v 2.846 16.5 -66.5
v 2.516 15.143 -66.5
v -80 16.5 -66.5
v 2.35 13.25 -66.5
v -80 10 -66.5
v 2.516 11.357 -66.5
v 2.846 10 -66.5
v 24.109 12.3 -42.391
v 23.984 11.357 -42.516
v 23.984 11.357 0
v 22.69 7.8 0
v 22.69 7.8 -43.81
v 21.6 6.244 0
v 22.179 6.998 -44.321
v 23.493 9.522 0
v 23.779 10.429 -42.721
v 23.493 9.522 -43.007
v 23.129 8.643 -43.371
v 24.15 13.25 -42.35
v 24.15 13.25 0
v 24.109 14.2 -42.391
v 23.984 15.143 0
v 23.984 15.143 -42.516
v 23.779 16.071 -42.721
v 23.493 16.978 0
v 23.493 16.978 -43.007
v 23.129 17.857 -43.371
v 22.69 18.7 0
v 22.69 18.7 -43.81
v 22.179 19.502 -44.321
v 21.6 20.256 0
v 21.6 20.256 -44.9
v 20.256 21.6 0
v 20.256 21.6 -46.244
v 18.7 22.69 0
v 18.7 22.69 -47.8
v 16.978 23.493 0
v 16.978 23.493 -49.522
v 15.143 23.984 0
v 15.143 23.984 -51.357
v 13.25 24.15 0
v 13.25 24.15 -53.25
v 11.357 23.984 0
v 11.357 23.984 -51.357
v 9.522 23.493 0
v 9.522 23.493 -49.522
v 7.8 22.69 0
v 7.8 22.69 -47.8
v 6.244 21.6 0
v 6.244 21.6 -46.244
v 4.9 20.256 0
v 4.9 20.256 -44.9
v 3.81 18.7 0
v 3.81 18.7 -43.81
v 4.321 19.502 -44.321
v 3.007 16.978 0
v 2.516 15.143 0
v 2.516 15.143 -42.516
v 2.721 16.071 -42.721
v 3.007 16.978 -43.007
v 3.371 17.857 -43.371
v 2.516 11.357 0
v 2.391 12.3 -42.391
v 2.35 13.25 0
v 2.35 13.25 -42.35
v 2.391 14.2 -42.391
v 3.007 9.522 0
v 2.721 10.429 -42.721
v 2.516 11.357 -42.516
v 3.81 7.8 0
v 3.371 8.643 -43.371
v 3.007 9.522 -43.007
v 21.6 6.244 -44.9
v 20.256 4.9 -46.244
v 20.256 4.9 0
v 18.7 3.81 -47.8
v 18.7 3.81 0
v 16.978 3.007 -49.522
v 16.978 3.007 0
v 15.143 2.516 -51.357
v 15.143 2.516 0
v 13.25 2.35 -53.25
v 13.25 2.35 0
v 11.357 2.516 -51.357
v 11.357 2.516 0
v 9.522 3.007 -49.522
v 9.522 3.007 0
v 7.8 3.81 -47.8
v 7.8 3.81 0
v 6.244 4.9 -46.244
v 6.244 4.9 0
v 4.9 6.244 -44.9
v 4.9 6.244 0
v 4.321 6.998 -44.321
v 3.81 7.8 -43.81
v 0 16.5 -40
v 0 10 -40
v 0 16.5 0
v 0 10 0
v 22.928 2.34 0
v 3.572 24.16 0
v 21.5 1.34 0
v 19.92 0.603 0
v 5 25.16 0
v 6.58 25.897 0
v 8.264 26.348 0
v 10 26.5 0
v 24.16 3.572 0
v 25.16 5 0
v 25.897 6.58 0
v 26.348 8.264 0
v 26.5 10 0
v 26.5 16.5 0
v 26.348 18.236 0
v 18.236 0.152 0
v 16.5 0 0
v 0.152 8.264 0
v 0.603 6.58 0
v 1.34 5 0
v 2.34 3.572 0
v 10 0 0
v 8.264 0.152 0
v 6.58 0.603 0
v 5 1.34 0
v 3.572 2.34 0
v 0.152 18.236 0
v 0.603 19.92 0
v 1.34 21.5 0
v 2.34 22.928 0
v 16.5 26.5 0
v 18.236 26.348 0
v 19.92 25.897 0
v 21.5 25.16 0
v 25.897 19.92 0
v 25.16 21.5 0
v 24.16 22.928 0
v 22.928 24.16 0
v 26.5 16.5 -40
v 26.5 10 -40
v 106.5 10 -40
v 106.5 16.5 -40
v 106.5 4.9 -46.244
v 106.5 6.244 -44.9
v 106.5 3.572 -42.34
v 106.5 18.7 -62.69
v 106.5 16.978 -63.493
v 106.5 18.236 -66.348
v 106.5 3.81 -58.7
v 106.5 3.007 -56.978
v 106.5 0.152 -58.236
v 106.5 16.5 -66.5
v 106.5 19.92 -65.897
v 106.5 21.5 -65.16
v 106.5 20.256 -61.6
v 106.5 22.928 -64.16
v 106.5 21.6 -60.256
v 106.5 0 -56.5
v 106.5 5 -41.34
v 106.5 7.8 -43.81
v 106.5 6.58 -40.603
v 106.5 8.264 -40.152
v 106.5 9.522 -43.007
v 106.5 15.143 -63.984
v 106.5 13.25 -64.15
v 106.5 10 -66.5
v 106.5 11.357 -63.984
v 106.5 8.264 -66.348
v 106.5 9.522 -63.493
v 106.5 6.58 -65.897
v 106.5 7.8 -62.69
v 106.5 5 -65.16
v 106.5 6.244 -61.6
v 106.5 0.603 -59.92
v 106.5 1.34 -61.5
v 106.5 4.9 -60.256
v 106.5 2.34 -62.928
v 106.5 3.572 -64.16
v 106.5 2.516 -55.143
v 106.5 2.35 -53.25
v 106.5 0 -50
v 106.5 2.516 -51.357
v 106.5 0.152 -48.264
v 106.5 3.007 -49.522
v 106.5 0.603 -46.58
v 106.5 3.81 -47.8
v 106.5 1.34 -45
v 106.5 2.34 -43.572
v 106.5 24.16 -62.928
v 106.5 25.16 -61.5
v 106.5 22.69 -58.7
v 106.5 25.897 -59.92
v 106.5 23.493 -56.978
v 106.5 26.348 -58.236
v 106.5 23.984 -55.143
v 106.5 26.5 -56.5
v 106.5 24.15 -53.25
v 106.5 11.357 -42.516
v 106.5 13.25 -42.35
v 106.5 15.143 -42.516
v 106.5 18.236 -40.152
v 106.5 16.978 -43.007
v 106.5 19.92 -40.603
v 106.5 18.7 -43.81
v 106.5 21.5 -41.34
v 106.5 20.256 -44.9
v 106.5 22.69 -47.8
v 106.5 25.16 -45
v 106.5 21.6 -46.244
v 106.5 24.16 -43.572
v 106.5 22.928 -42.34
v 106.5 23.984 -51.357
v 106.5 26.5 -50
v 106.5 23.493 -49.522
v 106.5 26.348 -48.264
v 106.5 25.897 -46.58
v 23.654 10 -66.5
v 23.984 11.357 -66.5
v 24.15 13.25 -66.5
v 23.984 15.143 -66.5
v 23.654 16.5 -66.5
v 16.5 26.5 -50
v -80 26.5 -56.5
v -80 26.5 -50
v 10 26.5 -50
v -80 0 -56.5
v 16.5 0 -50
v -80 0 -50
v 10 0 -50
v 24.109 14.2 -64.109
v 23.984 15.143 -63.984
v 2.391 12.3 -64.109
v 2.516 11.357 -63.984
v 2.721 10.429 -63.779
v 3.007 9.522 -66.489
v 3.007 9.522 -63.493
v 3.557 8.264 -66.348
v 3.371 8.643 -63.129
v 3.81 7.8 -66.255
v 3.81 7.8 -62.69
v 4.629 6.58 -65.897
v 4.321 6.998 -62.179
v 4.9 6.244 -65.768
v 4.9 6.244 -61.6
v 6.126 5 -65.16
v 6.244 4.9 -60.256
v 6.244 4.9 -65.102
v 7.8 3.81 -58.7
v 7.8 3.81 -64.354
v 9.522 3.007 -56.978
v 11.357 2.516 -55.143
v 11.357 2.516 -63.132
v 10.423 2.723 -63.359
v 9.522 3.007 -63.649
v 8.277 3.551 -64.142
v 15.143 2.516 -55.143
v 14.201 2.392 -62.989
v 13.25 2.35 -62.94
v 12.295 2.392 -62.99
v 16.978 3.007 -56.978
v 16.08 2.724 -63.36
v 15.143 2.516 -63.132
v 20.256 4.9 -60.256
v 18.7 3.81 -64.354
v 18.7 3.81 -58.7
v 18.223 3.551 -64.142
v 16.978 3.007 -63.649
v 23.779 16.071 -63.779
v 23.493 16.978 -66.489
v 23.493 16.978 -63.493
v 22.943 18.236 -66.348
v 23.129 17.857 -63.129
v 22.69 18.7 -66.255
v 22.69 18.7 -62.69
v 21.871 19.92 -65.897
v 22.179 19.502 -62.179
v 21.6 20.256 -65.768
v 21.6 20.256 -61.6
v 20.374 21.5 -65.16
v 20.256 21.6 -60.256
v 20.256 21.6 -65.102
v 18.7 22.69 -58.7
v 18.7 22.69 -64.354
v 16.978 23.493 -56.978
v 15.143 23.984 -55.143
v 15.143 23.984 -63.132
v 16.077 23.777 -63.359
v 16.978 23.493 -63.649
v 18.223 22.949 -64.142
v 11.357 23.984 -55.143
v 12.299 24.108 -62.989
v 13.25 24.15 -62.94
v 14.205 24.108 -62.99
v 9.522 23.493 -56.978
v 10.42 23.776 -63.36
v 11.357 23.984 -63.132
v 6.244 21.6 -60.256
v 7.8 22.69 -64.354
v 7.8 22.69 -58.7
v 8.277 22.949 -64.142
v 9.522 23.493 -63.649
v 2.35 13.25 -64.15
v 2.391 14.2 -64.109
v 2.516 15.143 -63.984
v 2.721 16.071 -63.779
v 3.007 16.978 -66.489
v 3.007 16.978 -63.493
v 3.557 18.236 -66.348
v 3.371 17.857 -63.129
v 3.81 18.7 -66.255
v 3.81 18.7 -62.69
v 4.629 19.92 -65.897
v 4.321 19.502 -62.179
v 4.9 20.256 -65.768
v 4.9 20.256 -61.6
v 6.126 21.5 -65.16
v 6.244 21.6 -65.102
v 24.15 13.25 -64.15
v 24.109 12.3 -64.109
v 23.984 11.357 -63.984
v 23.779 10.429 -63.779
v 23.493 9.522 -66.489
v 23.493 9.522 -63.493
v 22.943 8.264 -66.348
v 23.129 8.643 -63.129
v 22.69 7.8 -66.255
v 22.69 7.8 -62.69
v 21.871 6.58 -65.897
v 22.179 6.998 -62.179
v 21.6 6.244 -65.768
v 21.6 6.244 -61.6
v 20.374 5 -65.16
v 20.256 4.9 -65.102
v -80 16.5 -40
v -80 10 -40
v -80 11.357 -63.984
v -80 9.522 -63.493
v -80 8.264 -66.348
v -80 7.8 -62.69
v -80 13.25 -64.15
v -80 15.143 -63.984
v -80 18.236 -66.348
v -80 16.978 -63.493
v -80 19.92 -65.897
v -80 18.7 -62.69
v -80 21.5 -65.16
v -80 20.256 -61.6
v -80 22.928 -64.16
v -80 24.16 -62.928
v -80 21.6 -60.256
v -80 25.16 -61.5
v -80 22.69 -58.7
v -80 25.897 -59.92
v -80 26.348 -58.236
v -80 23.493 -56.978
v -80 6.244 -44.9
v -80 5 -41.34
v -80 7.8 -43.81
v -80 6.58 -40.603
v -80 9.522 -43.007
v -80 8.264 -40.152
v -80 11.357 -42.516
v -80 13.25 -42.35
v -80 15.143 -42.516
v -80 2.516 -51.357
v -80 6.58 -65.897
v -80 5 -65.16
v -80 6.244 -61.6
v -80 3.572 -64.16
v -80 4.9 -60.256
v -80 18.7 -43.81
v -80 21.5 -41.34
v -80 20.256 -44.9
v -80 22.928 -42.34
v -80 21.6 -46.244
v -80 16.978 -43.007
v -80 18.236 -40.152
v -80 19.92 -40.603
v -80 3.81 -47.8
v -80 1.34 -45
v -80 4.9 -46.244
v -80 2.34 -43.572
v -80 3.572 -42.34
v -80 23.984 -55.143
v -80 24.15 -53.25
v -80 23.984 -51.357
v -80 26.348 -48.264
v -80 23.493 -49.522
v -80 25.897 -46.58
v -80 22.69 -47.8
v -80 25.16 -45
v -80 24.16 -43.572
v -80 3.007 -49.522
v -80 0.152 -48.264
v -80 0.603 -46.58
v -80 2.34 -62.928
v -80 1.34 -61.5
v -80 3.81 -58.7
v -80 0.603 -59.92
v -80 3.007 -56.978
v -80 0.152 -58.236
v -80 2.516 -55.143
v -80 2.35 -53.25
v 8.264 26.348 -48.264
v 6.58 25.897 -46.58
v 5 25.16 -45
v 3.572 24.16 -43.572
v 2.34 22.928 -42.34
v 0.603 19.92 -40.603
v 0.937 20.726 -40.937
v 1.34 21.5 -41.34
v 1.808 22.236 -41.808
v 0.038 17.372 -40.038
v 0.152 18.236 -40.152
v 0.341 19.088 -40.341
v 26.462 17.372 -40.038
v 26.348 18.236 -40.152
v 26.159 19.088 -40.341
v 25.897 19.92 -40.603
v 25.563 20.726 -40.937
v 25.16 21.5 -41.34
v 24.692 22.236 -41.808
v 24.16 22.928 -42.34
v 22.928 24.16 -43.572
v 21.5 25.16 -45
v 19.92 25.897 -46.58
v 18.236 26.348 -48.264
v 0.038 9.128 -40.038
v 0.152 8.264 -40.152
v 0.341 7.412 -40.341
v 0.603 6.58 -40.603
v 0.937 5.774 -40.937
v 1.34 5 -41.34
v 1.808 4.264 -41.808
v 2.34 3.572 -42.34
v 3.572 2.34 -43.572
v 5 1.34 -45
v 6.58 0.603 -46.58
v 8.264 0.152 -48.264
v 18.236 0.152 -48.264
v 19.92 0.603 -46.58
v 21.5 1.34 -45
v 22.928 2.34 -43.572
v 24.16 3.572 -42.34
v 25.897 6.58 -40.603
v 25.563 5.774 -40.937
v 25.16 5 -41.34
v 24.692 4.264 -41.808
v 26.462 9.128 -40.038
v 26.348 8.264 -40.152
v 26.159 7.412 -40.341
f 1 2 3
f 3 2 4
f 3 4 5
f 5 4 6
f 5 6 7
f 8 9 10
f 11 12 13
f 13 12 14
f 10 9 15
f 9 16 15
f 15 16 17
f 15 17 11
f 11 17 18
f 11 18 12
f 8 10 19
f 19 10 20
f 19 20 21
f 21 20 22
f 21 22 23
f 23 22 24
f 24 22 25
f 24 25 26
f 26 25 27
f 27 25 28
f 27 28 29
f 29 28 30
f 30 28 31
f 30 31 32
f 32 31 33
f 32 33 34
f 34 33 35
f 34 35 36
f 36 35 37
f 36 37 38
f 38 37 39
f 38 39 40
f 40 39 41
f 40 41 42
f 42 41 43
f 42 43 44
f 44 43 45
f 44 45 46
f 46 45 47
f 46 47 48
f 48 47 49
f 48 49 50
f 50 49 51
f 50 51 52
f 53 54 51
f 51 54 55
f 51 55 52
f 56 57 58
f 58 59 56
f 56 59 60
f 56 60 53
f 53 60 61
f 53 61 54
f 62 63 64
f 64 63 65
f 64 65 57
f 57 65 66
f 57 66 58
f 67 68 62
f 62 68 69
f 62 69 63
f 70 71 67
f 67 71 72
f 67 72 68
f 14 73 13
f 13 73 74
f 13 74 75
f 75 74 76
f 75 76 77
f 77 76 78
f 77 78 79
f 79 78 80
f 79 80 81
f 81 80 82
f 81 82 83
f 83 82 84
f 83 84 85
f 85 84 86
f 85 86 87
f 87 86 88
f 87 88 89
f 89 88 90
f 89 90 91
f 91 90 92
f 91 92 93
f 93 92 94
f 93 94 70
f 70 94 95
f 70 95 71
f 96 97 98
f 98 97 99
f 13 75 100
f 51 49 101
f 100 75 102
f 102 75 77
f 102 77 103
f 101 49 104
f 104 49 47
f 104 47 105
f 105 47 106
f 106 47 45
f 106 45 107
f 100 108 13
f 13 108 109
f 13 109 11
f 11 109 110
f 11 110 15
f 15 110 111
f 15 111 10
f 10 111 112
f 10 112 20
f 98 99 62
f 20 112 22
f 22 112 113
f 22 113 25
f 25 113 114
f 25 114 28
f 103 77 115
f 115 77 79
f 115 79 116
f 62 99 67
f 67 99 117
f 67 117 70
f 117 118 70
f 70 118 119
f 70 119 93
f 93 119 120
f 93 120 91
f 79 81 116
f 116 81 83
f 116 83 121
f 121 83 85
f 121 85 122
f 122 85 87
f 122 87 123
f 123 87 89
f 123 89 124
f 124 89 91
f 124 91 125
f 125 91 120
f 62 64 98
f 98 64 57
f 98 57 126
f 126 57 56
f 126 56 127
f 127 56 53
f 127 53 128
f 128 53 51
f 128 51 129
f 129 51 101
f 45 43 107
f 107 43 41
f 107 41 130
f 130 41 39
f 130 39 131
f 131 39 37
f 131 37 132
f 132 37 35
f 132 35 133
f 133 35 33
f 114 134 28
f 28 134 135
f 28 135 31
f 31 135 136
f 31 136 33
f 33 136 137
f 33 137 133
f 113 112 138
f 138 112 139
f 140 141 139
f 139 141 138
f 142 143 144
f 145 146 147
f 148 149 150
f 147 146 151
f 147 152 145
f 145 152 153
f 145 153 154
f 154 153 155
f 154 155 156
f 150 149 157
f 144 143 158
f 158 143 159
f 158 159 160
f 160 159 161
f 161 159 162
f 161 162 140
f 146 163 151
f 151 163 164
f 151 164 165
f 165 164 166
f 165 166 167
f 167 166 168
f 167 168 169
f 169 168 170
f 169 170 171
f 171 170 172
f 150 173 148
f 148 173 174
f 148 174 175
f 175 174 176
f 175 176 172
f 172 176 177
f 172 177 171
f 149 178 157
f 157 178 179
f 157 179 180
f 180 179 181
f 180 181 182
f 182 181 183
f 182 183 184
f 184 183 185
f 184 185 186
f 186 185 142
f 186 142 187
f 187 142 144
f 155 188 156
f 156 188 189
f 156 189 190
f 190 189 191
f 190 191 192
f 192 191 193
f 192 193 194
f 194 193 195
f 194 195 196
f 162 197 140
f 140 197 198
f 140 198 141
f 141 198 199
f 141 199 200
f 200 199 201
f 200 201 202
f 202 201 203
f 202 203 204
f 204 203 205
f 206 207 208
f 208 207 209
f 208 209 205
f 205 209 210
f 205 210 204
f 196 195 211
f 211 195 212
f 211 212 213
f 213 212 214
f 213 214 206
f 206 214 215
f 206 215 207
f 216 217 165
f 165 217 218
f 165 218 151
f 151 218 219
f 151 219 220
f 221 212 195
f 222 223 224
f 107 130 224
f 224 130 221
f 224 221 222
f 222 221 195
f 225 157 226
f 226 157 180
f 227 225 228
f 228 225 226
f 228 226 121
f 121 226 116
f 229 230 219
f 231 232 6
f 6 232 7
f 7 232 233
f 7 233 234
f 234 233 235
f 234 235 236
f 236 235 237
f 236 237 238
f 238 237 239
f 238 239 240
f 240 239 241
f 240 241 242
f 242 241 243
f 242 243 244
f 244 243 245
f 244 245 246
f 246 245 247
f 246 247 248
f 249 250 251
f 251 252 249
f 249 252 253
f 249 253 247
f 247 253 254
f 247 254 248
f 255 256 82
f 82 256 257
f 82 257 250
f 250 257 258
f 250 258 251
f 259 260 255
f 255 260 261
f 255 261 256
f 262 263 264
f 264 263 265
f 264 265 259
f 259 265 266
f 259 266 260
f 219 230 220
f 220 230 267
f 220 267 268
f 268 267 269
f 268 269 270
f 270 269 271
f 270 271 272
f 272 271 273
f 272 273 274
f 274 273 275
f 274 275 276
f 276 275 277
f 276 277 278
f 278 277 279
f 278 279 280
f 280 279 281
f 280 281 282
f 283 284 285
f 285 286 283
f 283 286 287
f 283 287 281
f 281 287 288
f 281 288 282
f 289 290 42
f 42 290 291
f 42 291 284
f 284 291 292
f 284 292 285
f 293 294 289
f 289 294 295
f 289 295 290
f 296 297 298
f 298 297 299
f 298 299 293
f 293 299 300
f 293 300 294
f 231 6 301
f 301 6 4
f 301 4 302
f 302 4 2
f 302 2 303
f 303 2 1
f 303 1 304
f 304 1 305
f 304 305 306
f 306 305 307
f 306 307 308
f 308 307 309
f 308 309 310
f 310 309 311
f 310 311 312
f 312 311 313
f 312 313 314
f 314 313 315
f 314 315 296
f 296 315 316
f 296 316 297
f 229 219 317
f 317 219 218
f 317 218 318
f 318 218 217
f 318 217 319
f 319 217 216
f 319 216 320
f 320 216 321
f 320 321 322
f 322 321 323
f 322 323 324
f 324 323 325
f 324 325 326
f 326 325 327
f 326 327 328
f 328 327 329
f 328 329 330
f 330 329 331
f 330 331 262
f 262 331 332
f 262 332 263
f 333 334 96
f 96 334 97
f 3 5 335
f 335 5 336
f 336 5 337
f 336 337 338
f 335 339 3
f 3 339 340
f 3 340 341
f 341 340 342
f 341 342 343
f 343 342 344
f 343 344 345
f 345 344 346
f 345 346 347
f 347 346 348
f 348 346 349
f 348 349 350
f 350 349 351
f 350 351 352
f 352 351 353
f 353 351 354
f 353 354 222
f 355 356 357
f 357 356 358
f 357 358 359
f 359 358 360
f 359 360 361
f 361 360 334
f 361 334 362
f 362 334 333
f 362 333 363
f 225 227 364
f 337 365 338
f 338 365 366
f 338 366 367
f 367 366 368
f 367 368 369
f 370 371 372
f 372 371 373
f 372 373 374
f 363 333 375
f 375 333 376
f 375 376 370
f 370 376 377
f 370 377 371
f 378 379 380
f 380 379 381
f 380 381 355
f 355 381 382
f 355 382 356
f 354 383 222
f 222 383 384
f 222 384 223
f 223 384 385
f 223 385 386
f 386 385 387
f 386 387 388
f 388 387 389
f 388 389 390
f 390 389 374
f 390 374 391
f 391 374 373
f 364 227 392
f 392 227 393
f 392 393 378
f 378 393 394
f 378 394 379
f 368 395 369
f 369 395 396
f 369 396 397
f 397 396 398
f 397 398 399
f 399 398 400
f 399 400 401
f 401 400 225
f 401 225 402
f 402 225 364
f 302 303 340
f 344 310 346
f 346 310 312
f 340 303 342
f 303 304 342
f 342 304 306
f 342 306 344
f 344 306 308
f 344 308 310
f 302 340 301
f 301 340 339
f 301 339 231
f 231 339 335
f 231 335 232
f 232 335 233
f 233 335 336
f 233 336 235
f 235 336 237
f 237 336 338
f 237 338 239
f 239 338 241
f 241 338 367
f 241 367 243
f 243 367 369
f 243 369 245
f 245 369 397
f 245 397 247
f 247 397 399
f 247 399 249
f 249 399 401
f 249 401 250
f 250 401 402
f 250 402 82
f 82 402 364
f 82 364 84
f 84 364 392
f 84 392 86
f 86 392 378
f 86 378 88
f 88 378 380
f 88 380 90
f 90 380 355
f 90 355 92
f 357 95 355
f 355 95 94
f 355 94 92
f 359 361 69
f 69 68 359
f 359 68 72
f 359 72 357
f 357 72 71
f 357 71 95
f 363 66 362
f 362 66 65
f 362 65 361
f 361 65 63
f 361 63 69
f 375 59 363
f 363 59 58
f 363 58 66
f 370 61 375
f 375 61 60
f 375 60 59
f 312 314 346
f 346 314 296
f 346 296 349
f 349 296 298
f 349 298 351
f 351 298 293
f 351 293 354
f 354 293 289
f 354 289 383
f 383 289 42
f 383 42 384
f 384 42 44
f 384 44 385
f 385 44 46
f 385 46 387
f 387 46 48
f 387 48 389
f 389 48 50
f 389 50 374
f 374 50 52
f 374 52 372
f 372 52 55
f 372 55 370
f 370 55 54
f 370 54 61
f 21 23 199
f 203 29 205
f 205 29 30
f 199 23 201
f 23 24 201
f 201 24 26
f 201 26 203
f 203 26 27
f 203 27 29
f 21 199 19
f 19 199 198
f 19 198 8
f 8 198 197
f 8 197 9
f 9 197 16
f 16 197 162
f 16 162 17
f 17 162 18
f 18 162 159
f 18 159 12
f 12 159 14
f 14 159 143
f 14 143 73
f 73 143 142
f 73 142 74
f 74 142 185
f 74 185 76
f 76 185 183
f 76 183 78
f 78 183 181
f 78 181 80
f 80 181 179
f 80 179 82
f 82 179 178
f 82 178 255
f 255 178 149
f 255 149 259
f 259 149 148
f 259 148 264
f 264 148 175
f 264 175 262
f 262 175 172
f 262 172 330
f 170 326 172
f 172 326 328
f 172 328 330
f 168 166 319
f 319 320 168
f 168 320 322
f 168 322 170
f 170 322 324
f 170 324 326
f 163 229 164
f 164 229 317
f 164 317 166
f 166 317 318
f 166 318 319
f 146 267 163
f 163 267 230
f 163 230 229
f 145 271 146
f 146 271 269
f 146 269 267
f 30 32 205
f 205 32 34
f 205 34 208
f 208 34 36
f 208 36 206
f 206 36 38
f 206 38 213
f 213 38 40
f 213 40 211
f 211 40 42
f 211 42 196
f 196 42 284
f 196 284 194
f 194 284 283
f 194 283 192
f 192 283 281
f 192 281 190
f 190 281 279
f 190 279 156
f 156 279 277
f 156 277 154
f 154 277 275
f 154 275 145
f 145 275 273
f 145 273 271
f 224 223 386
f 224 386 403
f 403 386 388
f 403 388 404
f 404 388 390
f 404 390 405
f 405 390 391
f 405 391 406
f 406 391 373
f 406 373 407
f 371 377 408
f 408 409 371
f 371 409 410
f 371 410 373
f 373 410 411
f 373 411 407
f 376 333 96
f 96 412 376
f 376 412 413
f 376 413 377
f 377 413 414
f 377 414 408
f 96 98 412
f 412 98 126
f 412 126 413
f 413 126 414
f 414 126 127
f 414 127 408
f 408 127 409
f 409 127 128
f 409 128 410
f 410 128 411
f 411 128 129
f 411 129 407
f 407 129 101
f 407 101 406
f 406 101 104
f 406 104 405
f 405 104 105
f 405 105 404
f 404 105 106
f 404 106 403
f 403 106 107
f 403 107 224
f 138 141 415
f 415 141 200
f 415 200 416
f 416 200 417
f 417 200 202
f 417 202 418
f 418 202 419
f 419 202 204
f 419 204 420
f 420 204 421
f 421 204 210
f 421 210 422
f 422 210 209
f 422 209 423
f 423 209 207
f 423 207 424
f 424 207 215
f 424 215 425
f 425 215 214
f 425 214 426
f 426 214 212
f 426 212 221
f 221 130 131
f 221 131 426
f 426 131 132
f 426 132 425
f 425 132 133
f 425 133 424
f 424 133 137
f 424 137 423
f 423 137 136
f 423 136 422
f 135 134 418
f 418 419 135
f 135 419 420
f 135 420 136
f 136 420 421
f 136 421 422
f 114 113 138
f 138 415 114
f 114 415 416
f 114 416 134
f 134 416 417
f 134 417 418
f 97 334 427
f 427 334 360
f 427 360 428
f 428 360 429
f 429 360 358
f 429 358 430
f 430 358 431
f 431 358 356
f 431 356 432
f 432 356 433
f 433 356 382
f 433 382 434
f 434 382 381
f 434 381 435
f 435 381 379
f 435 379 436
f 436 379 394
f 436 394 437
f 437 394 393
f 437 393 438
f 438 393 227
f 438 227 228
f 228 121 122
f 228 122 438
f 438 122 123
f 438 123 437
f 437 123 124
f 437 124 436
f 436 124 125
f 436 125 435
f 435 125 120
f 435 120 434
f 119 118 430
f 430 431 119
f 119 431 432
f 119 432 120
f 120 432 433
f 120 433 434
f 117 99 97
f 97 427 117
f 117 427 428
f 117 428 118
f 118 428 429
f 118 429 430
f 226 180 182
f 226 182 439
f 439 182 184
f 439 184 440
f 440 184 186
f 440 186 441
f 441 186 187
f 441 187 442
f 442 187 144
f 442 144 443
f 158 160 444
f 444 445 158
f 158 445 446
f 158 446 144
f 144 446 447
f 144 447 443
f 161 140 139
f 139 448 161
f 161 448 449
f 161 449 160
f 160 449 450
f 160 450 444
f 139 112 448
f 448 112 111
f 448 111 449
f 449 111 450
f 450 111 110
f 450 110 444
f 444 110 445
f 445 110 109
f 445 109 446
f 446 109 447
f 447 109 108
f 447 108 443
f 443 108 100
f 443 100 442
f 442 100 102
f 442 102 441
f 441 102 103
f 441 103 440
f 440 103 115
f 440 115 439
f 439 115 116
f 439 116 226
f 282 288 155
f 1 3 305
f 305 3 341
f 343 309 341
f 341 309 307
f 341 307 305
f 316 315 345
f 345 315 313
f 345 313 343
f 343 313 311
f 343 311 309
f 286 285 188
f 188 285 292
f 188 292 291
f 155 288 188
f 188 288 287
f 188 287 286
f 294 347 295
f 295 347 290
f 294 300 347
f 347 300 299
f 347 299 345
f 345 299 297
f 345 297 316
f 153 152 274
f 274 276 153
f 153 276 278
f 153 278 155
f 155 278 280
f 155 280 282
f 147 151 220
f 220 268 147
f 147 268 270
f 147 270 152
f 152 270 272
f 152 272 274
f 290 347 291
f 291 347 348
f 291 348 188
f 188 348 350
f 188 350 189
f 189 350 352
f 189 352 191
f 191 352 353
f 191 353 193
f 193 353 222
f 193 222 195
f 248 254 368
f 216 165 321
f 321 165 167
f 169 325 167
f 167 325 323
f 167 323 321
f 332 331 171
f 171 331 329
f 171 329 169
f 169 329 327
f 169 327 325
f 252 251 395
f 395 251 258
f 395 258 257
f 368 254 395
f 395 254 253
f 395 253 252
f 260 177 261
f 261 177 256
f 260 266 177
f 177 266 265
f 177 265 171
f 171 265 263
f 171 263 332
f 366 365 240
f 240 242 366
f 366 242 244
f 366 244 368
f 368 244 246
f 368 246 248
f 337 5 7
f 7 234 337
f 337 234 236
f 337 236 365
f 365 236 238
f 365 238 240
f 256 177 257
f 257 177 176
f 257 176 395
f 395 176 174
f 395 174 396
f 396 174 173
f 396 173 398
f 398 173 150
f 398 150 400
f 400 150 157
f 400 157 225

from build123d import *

# Parameters (mm, degrees)
BOSS_EXTRUDE1_DEPTH = 26.5
SKETCH3_R           = 10.9
CUT_EXTRUDE1_DEPTH  = 129.322835068
SKETCH6_W           = 26.5
SKETCH6_H           = 26.5
BOSS_EXTRUDE3_DEPTH = 80
SKETCH7_R           = 10.9
CUT_EXTRUDE2_DEPTH  = 200.766738973
FILLET1_R           = 10


with BuildPart() as part:
    # Sketch2 → Boss-Extrude1 (new body)
    with BuildSketch(Plane(origin=(0, 0, 0), x_dir=(1, 0, 0), z_dir=(0, 1, 0))):
        Polygon((0, 0), (0, 66.5), (106.5, 66.5), (106.5, 40), (26.5, 40), (26.5, 0), align=None)
    extrude(amount=BOSS_EXTRUDE1_DEPTH)

    # Sketch3 → Cut-Extrude1 (cut, through all)
    with BuildSketch(Plane.XY):
        with Locations((13.25, 13.25)):
            Circle(SKETCH3_R)
    extrude(amount=-CUT_EXTRUDE1_DEPTH, mode=Mode.SUBTRACT)

    # Sketch6 → Boss-Extrude3 (add)
    with BuildSketch(Plane.ZY):
        with Locations((-53.25, 13.25)):
            Rectangle(SKETCH6_W, SKETCH6_H)
    extrude(amount=BOSS_EXTRUDE3_DEPTH)

    # Sketch7 → Cut-Extrude2 (cut, through all)
    with BuildSketch(Plane.ZY.offset(80)):
        with Locations((-53.25, 13.25)):
            Circle(SKETCH7_R)
    extrude(amount=-CUT_EXTRUDE2_DEPTH, mode=Mode.SUBTRACT)

    # Fillet1
    # the kernel refuses this fillet: 10 mm, written as the material it takes off along each edge
    with BuildSketch(Plane(origin=(106.5, 26.5, -40), x_dir=(0, 0, -1), z_dir=(-1, 0, 0))) as fillet1_piece_1:
        with BuildLine():
            CenterArc((FILLET1_R, FILLET1_R), FILLET1_R, 180, 90)
            Line((0, FILLET1_R), (-FILLET1_R * 0.02, FILLET1_R))
            Line((-FILLET1_R * 0.02, FILLET1_R), (-FILLET1_R * 0.02, -FILLET1_R * 0.02))
            Line((-FILLET1_R * 0.02, -FILLET1_R * 0.02), (FILLET1_R, -FILLET1_R * 0.02))
            Line((FILLET1_R, -FILLET1_R * 0.02), (FILLET1_R, 0))
        make_face()
    extrude(amount=80, mode=Mode.SUBTRACT)
    with BuildSketch(Plane(origin=(106.5, 26.5, -66.5), x_dir=(0, 0, 1), z_dir=(-1, 0, 0)), Plane(origin=(-80, 0, -66.5), x_dir=(0, 0, 1), z_dir=(1, 0, 0))) as fillet1_piece_2:
        with BuildLine():
            CenterArc((FILLET1_R, -FILLET1_R), FILLET1_R, 90, 90)
            Line((0, -FILLET1_R), (-FILLET1_R * 0.02, -FILLET1_R))
            Line((-FILLET1_R * 0.02, -FILLET1_R), (-FILLET1_R * 0.02, FILLET1_R * 0.02))
            Line((-FILLET1_R * 0.02, FILLET1_R * 0.02), (FILLET1_R, FILLET1_R * 0.02))
            Line((FILLET1_R, FILLET1_R * 0.02), (FILLET1_R, 0))
        make_face()
    extrude(amount=186.5, mode=Mode.SUBTRACT)
    with BuildSketch(Plane(origin=(0, 0, 0), x_dir=(0, 1, 0), z_dir=(0, 0, -1)), Plane(origin=(26.5, 26.5, -40), x_dir=(-1, 0, 0), z_dir=(0, 0, 1))) as fillet1_piece_3:
        with BuildLine():
            CenterArc((FILLET1_R, FILLET1_R), FILLET1_R, 180, 90)
            Line((0, FILLET1_R), (-FILLET1_R * 0.02, FILLET1_R))
            Line((-FILLET1_R * 0.02, FILLET1_R), (-FILLET1_R * 0.02, -FILLET1_R * 0.02))
            Line((-FILLET1_R * 0.02, -FILLET1_R * 0.02), (FILLET1_R, -FILLET1_R * 0.02))
            Line((FILLET1_R, -FILLET1_R * 0.02), (FILLET1_R, 0))
        make_face()
    extrude(amount=40, mode=Mode.SUBTRACT)
    with BuildSketch(Plane(origin=(0, 26.5, 0), x_dir=(0, -1, 0), z_dir=(0, 0, -1)), Plane(origin=(26.5, 0, -40), x_dir=(-1, 0, 0), z_dir=(0, 0, 1))) as fillet1_piece_4:
        with BuildLine():
            CenterArc((FILLET1_R, -FILLET1_R), FILLET1_R, 90, 90)
            Line((0, -FILLET1_R), (-FILLET1_R * 0.02, -FILLET1_R))
            Line((-FILLET1_R * 0.02, -FILLET1_R), (-FILLET1_R * 0.02, FILLET1_R * 0.02))
            Line((-FILLET1_R * 0.02, FILLET1_R * 0.02), (FILLET1_R, FILLET1_R * 0.02))
            Line((FILLET1_R, FILLET1_R * 0.02), (FILLET1_R, 0))
        make_face()
    extrude(amount=40, mode=Mode.SUBTRACT)
    with BuildSketch(Plane(origin=(0, 0, -40), x_dir=(0, 0, -1), z_dir=(-1, 0, 0)), Plane(origin=(0, 26.5, -40), x_dir=(0, -1, 0), z_dir=(-1, 0, 0)), Plane(origin=(106.5, 0, -40), x_dir=(0, 0, -1), z_dir=(-1, 0, 0))) as fillet1_piece_5:
        with BuildLine():
            CenterArc((FILLET1_R, -FILLET1_R), FILLET1_R, 90, 90)
            Line((0, -FILLET1_R), (-FILLET1_R * 0.02, -FILLET1_R))
            Line((-FILLET1_R * 0.02, -FILLET1_R), (-FILLET1_R * 0.02, FILLET1_R * 0.02))
            Line((-FILLET1_R * 0.02, FILLET1_R * 0.02), (FILLET1_R, FILLET1_R * 0.02))
            Line((FILLET1_R, FILLET1_R * 0.02), (FILLET1_R, 0))
        make_face()
    extrude(amount=80, mode=Mode.SUBTRACT)
    with BuildSketch(Plane(origin=(106.5, 26.5, -40), x_dir=(0, 0, -1), z_dir=(-1, 0, 0))) as fillet1_piece_6a_section:
        with BuildLine():
            CenterArc((FILLET1_R, FILLET1_R), FILLET1_R, 180, 90)
            Line((0, FILLET1_R), (-FILLET1_R * 0.02, FILLET1_R))
            Line((-FILLET1_R * 0.02, FILLET1_R), (-FILLET1_R * 0.02, -FILLET1_R * 0.02))
            Line((-FILLET1_R * 0.02, -FILLET1_R * 0.02), (FILLET1_R, -FILLET1_R * 0.02))
            Line((FILLET1_R, -FILLET1_R * 0.02), (FILLET1_R, 0))
        make_face()
    fillet1_piece_6a = extrude(amount=105, mode=Mode.PRIVATE)
    fillet1_piece_6a = split(fillet1_piece_6a, bisect_by=Plane(origin=(26.5, 24.236048857, -42.263951143), z_dir=(-1, 0, 0)), keep=Keep.TOP, mode=Mode.PRIVATE)
    with BuildSketch(Plane(origin=(26.5, 26.5, -65), x_dir=(-1, 0, 0), z_dir=(0, 0, 1))) as fillet1_piece_6b_section:
        with BuildLine():
            CenterArc((FILLET1_R, FILLET1_R), FILLET1_R, 180, 90)
            Line((0, FILLET1_R), (-FILLET1_R * 0.02, FILLET1_R))
            Line((-FILLET1_R * 0.02, FILLET1_R), (-FILLET1_R * 0.02, -FILLET1_R * 0.02))
            Line((-FILLET1_R * 0.02, -FILLET1_R * 0.02), (FILLET1_R, -FILLET1_R * 0.02))
            Line((FILLET1_R, -FILLET1_R * 0.02), (FILLET1_R, 0))
        make_face()
    fillet1_piece_6b = extrude(amount=65, mode=Mode.PRIVATE)
    fillet1_piece_6b = split(fillet1_piece_6b, bisect_by=Plane(origin=(24.236048857, 24.236048857, -40), z_dir=(0, 0, -1)), keep=Keep.TOP, mode=Mode.PRIVATE)
    fillet1_piece_6 = fillet1_piece_6a & fillet1_piece_6b
    add(fillet1_piece_6, mode=Mode.SUBTRACT)
    with BuildSketch(Plane(origin=(0, 0, 0), x_dir=(0, 1, 0), z_dir=(0, 0, -1))) as fillet1_piece_7a_section:
        with BuildLine():
            CenterArc((FILLET1_R, FILLET1_R), FILLET1_R, 180, 90)
            Line((0, FILLET1_R), (-FILLET1_R * 0.02, FILLET1_R))
            Line((-FILLET1_R * 0.02, FILLET1_R), (-FILLET1_R * 0.02, -FILLET1_R * 0.02))
            Line((-FILLET1_R * 0.02, -FILLET1_R * 0.02), (FILLET1_R, -FILLET1_R * 0.02))
            Line((FILLET1_R, -FILLET1_R * 0.02), (FILLET1_R, 0))
        make_face()
    fillet1_piece_7a = extrude(amount=65, mode=Mode.PRIVATE)
    fillet1_piece_7a = split(fillet1_piece_7a, bisect_by=Plane(origin=(2.263951143, 2.263951143, -40), z_dir=(0, 0, -1)), keep=Keep.TOP, mode=Mode.PRIVATE)
    with BuildSketch(Plane(origin=(25, 0, -40), x_dir=(0, 0, -1), z_dir=(-1, 0, 0))) as fillet1_piece_7b_section:
        with BuildLine():
            CenterArc((FILLET1_R, -FILLET1_R), FILLET1_R, 90, 90)
            Line((0, -FILLET1_R), (-FILLET1_R * 0.02, -FILLET1_R))
            Line((-FILLET1_R * 0.02, -FILLET1_R), (-FILLET1_R * 0.02, FILLET1_R * 0.02))
            Line((-FILLET1_R * 0.02, FILLET1_R * 0.02), (FILLET1_R, FILLET1_R * 0.02))
            Line((FILLET1_R, FILLET1_R * 0.02), (FILLET1_R, 0))
        make_face()
    fillet1_piece_7b = extrude(amount=105, mode=Mode.PRIVATE)
    fillet1_piece_7b = split(fillet1_piece_7b, bisect_by=Plane(origin=(0, 2.263951143, -42.263951143), z_dir=(1, 0, 0)), keep=Keep.TOP, mode=Mode.PRIVATE)
    fillet1_piece_7 = fillet1_piece_7a & fillet1_piece_7b
    add(fillet1_piece_7, mode=Mode.SUBTRACT)
    with BuildSketch(Plane(origin=(0, 26.5, 0), x_dir=(0, -1, 0), z_dir=(0, 0, -1))) as fillet1_piece_8a_section:
        with BuildLine():
            CenterArc((FILLET1_R, -FILLET1_R), FILLET1_R, 90, 90)
            Line((0, -FILLET1_R), (-FILLET1_R * 0.02, -FILLET1_R))
            Line((-FILLET1_R * 0.02, -FILLET1_R), (-FILLET1_R * 0.02, FILLET1_R * 0.02))
            Line((-FILLET1_R * 0.02, FILLET1_R * 0.02), (FILLET1_R, FILLET1_R * 0.02))
            Line((FILLET1_R, FILLET1_R * 0.02), (FILLET1_R, 0))
        make_face()
    fillet1_piece_8a = extrude(amount=65, mode=Mode.PRIVATE)
    fillet1_piece_8a = split(fillet1_piece_8a, bisect_by=Plane(origin=(2.263951143, 24.236048857, -40), z_dir=(0, 0, -1)), keep=Keep.TOP, mode=Mode.PRIVATE)
    with BuildSketch(Plane(origin=(25, 26.5, -40), x_dir=(0, -1, 0), z_dir=(-1, 0, 0))) as fillet1_piece_8b_section:
        with BuildLine():
            CenterArc((FILLET1_R, -FILLET1_R), FILLET1_R, 90, 90)
            Line((0, -FILLET1_R), (-FILLET1_R * 0.02, -FILLET1_R))
            Line((-FILLET1_R * 0.02, -FILLET1_R), (-FILLET1_R * 0.02, FILLET1_R * 0.02))
            Line((-FILLET1_R * 0.02, FILLET1_R * 0.02), (FILLET1_R, FILLET1_R * 0.02))
            Line((FILLET1_R, FILLET1_R * 0.02), (FILLET1_R, 0))
        make_face()
    fillet1_piece_8b = extrude(amount=105, mode=Mode.PRIVATE)
    fillet1_piece_8b = split(fillet1_piece_8b, bisect_by=Plane(origin=(0, 24.236048857, -42.263951143), z_dir=(1, 0, 0)), keep=Keep.TOP, mode=Mode.PRIVATE)
    fillet1_piece_8 = fillet1_piece_8a & fillet1_piece_8b
    add(fillet1_piece_8, mode=Mode.SUBTRACT)
    with BuildSketch(Plane(origin=(106.5, 0, -40), x_dir=(0, 0, -1), z_dir=(-1, 0, 0))) as fillet1_piece_9a_section:
        with BuildLine():
            CenterArc((FILLET1_R, -FILLET1_R), FILLET1_R, 90, 90)
            Line((0, -FILLET1_R), (-FILLET1_R * 0.02, -FILLET1_R))
            Line((-FILLET1_R * 0.02, -FILLET1_R), (-FILLET1_R * 0.02, FILLET1_R * 0.02))
            Line((-FILLET1_R * 0.02, FILLET1_R * 0.02), (FILLET1_R, FILLET1_R * 0.02))
            Line((FILLET1_R, FILLET1_R * 0.02), (FILLET1_R, 0))
        make_face()
    fillet1_piece_9a = extrude(amount=105, mode=Mode.PRIVATE)
    fillet1_piece_9a = split(fillet1_piece_9a, bisect_by=Plane(origin=(26.5, 2.263951143, -42.263951143), z_dir=(-1, 0, 0)), keep=Keep.TOP, mode=Mode.PRIVATE)
    with BuildSketch(Plane(origin=(26.5, 0, -65), x_dir=(-1, 0, 0), z_dir=(0, 0, 1))) as fillet1_piece_9b_section:
        with BuildLine():
            CenterArc((FILLET1_R, -FILLET1_R), FILLET1_R, 90, 90)
            Line((0, -FILLET1_R), (-FILLET1_R * 0.02, -FILLET1_R))
            Line((-FILLET1_R * 0.02, -FILLET1_R), (-FILLET1_R * 0.02, FILLET1_R * 0.02))
            Line((-FILLET1_R * 0.02, FILLET1_R * 0.02), (FILLET1_R, FILLET1_R * 0.02))
            Line((FILLET1_R, FILLET1_R * 0.02), (FILLET1_R, 0))
        make_face()
    fillet1_piece_9b = extrude(amount=65, mode=Mode.PRIVATE)
    fillet1_piece_9b = split(fillet1_piece_9b, bisect_by=Plane(origin=(24.236048857, 2.263951143, -40), z_dir=(0, 0, -1)), keep=Keep.TOP, mode=Mode.PRIVATE)
    fillet1_piece_9 = fillet1_piece_9a & fillet1_piece_9b
    add(fillet1_piece_9, mode=Mode.SUBTRACT)


solid = part.part
